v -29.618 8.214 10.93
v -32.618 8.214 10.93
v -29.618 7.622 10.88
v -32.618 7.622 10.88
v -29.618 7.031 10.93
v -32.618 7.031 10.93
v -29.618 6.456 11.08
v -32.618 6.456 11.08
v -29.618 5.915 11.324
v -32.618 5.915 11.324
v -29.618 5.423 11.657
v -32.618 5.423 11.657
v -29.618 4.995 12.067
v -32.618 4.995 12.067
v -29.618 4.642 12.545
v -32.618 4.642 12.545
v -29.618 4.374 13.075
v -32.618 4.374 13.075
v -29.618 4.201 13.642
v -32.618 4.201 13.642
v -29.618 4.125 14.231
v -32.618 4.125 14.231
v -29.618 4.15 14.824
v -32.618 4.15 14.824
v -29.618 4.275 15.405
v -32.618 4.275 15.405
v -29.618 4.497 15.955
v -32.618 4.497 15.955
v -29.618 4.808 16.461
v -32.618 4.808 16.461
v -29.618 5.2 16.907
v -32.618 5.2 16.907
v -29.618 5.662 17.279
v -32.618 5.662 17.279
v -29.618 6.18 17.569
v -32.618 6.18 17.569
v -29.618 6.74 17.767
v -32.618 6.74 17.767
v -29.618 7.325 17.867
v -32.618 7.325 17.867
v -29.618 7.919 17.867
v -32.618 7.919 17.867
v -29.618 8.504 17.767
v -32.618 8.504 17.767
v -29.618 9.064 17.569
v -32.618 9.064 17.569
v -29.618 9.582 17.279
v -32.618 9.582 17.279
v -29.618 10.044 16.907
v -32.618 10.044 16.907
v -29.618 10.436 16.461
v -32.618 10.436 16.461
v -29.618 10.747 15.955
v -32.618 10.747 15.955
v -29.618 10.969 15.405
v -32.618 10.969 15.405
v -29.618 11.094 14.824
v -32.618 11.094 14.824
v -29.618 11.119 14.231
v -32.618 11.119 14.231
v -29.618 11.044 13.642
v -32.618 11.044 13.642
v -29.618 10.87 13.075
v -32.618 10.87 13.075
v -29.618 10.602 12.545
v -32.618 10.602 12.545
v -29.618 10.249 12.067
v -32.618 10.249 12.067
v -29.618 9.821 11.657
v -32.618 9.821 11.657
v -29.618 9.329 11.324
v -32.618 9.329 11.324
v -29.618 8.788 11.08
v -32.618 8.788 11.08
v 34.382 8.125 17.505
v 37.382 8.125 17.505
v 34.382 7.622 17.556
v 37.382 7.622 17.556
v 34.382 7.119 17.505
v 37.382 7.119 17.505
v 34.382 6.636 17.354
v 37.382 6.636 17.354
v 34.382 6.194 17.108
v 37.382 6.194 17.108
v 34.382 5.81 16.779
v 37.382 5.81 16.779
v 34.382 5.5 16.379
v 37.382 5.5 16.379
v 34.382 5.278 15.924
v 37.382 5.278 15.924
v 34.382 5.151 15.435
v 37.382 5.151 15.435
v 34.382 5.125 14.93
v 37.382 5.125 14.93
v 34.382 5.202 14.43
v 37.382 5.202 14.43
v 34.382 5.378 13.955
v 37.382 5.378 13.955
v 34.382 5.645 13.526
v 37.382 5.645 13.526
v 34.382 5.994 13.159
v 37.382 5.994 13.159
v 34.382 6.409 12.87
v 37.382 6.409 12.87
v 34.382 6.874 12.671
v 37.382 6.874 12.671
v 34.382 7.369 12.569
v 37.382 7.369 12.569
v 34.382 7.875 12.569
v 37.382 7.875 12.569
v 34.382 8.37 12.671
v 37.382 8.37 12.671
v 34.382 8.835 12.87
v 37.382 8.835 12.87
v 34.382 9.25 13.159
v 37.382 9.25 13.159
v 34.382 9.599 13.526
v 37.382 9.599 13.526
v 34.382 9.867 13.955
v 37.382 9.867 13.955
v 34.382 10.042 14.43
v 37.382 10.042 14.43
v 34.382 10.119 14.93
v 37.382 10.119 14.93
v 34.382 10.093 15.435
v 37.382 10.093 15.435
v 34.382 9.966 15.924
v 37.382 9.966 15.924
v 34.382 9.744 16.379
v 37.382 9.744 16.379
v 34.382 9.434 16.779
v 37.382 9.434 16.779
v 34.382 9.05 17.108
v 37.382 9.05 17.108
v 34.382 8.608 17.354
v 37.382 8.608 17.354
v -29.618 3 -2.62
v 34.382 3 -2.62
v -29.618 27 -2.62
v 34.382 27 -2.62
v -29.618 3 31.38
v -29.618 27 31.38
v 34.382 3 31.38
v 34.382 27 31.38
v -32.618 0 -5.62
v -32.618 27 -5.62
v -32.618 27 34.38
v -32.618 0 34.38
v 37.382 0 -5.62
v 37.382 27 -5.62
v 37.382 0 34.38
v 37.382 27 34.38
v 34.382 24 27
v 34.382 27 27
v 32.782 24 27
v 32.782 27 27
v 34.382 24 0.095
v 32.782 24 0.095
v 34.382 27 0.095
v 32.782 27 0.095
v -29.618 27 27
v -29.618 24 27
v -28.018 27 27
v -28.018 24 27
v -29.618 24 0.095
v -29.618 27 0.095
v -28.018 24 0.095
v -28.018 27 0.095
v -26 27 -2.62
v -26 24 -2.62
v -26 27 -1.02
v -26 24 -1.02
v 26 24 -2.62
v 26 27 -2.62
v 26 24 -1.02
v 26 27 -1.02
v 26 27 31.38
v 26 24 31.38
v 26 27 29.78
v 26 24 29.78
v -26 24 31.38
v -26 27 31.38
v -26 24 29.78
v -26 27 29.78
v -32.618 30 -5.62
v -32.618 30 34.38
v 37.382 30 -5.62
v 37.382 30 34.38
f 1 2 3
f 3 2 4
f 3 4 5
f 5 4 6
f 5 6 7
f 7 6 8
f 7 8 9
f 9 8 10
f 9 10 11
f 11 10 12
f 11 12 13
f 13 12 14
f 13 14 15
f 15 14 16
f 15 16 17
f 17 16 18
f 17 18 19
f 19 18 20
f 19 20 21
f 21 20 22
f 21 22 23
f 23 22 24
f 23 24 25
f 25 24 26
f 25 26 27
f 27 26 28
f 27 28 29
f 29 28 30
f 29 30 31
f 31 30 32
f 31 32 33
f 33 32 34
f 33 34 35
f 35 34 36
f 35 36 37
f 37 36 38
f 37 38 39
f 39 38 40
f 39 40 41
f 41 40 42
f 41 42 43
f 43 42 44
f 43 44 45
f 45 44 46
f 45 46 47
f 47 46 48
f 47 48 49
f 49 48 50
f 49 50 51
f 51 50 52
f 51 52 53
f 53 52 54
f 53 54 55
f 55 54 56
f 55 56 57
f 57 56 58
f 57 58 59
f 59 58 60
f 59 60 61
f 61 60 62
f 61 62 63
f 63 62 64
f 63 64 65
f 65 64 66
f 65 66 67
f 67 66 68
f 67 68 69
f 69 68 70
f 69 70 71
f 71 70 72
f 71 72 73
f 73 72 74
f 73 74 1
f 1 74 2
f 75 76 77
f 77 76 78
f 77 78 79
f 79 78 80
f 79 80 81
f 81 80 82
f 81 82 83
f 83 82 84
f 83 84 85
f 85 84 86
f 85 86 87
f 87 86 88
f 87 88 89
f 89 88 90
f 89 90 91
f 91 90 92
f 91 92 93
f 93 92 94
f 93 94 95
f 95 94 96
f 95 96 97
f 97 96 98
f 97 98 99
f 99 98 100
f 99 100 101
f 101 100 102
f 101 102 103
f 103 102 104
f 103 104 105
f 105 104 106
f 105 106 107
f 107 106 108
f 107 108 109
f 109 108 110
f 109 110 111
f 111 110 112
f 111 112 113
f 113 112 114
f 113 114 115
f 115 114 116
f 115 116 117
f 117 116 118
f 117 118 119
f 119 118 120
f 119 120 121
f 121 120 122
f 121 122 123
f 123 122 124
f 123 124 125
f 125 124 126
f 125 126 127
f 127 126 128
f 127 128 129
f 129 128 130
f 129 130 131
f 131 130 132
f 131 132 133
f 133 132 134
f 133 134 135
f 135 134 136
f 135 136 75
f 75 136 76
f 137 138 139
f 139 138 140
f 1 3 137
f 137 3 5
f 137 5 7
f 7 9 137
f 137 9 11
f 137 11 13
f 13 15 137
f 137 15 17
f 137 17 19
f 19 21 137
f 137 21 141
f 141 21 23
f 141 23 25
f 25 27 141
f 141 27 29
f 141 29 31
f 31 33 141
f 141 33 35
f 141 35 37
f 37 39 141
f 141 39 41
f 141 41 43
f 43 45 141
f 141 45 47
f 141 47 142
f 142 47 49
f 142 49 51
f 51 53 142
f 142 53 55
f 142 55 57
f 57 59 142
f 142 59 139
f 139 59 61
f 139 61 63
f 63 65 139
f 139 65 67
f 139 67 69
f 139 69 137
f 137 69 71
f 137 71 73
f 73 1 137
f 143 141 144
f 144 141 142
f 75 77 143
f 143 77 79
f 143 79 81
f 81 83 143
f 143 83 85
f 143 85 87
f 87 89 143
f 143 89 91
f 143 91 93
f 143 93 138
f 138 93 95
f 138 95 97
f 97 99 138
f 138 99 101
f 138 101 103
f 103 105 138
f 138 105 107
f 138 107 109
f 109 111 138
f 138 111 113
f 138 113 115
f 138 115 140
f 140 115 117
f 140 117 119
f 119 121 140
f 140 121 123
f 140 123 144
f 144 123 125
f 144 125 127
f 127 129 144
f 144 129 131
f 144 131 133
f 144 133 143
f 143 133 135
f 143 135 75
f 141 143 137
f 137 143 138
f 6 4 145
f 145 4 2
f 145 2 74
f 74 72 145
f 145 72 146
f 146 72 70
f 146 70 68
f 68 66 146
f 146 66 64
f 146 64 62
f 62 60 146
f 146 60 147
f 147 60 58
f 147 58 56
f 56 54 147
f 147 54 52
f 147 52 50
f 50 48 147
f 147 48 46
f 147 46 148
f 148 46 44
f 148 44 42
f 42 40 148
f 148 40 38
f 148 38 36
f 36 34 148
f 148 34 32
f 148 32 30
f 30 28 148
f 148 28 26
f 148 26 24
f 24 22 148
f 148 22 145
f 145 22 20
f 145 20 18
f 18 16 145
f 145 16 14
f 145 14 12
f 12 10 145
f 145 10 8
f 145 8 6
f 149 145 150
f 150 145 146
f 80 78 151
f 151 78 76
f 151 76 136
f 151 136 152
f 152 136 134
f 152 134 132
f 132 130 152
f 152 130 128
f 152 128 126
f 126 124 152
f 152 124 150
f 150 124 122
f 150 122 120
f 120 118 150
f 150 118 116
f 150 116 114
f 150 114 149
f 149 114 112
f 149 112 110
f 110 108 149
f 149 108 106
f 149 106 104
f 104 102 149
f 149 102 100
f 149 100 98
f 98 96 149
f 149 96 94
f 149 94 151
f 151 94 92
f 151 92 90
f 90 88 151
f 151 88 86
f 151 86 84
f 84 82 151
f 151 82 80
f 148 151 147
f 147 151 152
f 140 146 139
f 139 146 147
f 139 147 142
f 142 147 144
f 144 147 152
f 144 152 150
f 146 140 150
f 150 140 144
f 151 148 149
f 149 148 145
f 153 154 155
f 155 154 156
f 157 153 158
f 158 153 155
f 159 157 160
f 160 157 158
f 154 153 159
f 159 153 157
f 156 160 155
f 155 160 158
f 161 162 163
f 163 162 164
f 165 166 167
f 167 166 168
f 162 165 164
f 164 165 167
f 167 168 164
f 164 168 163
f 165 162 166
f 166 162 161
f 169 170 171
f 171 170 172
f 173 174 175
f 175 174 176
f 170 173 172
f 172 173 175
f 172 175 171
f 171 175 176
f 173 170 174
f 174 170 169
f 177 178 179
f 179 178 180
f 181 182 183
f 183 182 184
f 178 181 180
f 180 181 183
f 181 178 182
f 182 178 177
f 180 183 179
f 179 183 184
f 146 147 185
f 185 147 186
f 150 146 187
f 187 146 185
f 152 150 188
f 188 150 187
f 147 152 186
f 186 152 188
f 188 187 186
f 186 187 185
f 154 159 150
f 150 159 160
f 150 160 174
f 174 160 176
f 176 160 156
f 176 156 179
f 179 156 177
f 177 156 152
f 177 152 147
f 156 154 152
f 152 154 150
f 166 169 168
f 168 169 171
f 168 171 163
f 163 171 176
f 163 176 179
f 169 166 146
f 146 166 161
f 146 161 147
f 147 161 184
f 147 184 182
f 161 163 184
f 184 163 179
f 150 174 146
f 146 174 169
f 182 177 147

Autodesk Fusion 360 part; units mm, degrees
sketch "Sketch1" plane through (0, 0, 0) normal (0, 1, 0) x (1, 0, 0) in component "Base"
  line L0 (-32.6179, 5.6203) -> (37.3821, 5.6203)
  line L1 (37.3821, 5.6203) -> (37.3821, -34.3797)
  line L2 (37.3821, -34.3797) -> (-32.6179, -34.3797)
  line L3 (-32.6179, -34.3797) -> (-32.6179, 5.6203)
  dimension "d1" = 70
  dimension "d2" = 40
extrude "Extrude1" add sketch "Sketch1" along normal blind 27 makes body 1 in component "Base"
sketch "Sketch2" plane through (0, 27, 0) normal (0, 1, 0) x (-1, 0, 0) in component "Base"
  line L0 (32.6179, 34.3797) -> (-37.3821, 34.3797)
  line L1 (-37.3821, 34.3797) -> (-37.3821, -5.6203)
  line L2 (-37.3821, -5.6203) -> (32.6179, -5.6203)
  line L3 (32.6179, -5.6203) -> (32.6179, 34.3797)
  line L4 (29.6179, 31.3797) -> (-34.3821, 31.3797)
  line L5 (-34.3821, 31.3797) -> (-34.3821, -2.6203)
  line L6 (-34.3821, -2.6203) -> (29.6179, -2.6203)
  line L7 (29.6179, -2.6203) -> (29.6179, 31.3797)
  dimension "d5" = 3
extrude "Extrude2" cut sketch "Sketch2" against normal up to surface (24 mm away) contours L4 L5 L6 L7 bodies 1 in component "Base"
sketch "Sketch3" plane through (37.3821, 0, 0) normal (1, 0, 0) x (0, 0, -1) in component "Base"
  line L0 (-34.3797, 0) -> (5.6203, 0)
  line L1 (5.6203, 0) -> (5.6203, 27)
  line L2 (5.6203, 27) -> (-34.3797, 27)
  line L3 (-34.3797, 27) -> (-34.3797, 0)
  circle A0 centre (-15.0561, 7.6221) radius 2.5
  dimension "d8" = 5
extrude "Extrude3" cut sketch "Sketch3" against normal blind 5 contours A0 bodies 1 in component "Base"
sketch "Sketch4" plane through (-32.6179, 0, 0) normal (-1, 0, 0) x (0, 0, 1) in component "Base"
  line L0 (-5.6203, 0) -> (34.3797, 0)
  line L1 (34.3797, 0) -> (34.3797, 27)
  line L2 (34.3797, 27) -> (-5.6203, 27)
  line L3 (-5.6203, 27) -> (-5.6203, 0)
  circle A0 centre (14.3797, 7.6221) radius 3.5
  dimension "d11" = 7
extrude "Extrude4" cut sketch "Sketch4" against normal blind 10 contours A0 bodies 1 in component "Base"
sketch "Sketch1 (2)" plane through (0, 27, 0) normal (0, 1, 0) x (-1, 0, 0) in component "Lid"
  line L0 (29.6179, -2.6203) -> (-34.3821, -2.6203)
  line L1 (-34.3821, -2.6203) -> (-34.3821, 31.3797)
  line L2 (-34.3821, 31.3797) -> (29.6179, 31.3797)
  line L3 (29.6179, 31.3797) -> (29.6179, -2.6203)
  line L4 (32.6179, 34.3797) -> (-37.3821, 34.3797)
  line L5 (-37.3821, 34.3797) -> (-37.3821, -5.6203)
  line L6 (-37.3821, -5.6203) -> (32.6179, -5.6203)
  line L7 (32.6179, -5.6203) -> (32.6179, 34.3797)
  line L8 (-37.3821, 34.3797) -> (-37.3821, -5.6203)
  line L9 (-37.3821, -5.6203) -> (32.6179, -5.6203)
  line L10 (32.6179, -5.6203) -> (32.6179, 34.3797)
  line L11 (32.6179, 34.3797) -> (-37.3821, 34.3797)
extrude "Extrude1'" add sketch "Sketch1 (2)" along normal blind 3 separate body contours L0 L1 L2 L3 | L4 L5 L6 L7 L8 L9 L10 L11 makes body 2 in component "Lid"
ref_plane "WorkPlane1" through (0, 0, 31.38) normal (0, 0, 1) x (1, 0, 0) in component "Lid"
sketch "Sketch2 (2)" plane through (0, 0, 31.38) normal (0, 0, 1) x (1, 0, 0) in component "Lid"
  line L0 (0, 0) -> (0, 38) construction
ref_plane "WorkPlane2" through (0, 0, 31.38) normal (0, 0, 1) x (1, 0, 0) in component "Lid"
sketch "Sketch3 (2)" plane through (0, 0, 31.38) normal (0, 0, 1) x (1, 0, 0) in component "Lid"
  line L0 (-32.6179, 27) -> (37.3821, 27)
  line L1 (26, 27) -> (26, 24)
  line L2 (26, 24) -> (-26, 24)
  line L3 (-26, 24) -> (-26, 27)
  line L4 (0, 0) -> (0, 38)
  dimension "d20" = 3
extrude "Extrude2'" add sketch "Sketch3 (2)" against normal blind 1.6 bodies 2 in component "Lid"
ref_plane "WorkPlane3" through (0, 0, -2.62) normal (0, 0, 1) x (1, 0, 0) in component "Lid"
sketch "Sketch4 (2)" plane through (0, 0, -2.62) normal (0, 0, 1) x (1, 0, 0) in component "Lid"
  line L0 (-32.6179, 27) -> (37.3821, 27)
  line L1 (26, 27) -> (26, 24)
  line L2 (26, 24) -> (-26, 24)
  line L3 (-26, 24) -> (-26, 27)
extrude "Extrude3'" add sketch "Sketch4 (2)" along normal blind 1.6 bodies 2 in component "Lid"
ref_plane "WorkPlane4" through (-29.618, 0, 0) normal (1, 0, 0) x (0, 1, 0) in component "Lid"
sketch "Sketch5" plane through (-29.618, 0, 0) normal (1, 0, 0) x (0, 0, -1) in component "Lid"
  line L0 (-34.3797, 27) -> (5.6203, 27)
  line L1 (-0.0952, 27) -> (-0.0952, 24)
  line L2 (-0.0952, 24) -> (-27, 24)
  line L3 (-27, 24) -> (-27, 27)
extrude "Extrude4'" add sketch "Sketch5" along normal blind 1.6 bodies 2 in component "Lid"
ref_plane "WorkPlane5" through (34.382, 0, 0) normal (1, 0, 0) x (0, 1, 0) in component "Lid"
sketch "Sketch6" plane through (34.382, 0, 0) normal (1, 0, 0) x (0, 0, -1) in component "Lid"
  line L0 (5.6203, 27) -> (-34.3797, 27)
  line L1 (-0.0952, 27) -> (-0.0952, 24)
  line L2 (-0.0952, 24) -> (-27, 24)
  line L3 (-27, 24) -> (-27, 27)
extrude "Extrude5" add sketch "Sketch6" against normal blind 1.6 bodies 2 in component "Lid"
component "Base" placed x (1, 0, 0) y (0, 1, 0) z (0, 0, 1) at (0, 0, 0)
component "Lid" placed x (1, 0, 0) y (0, 1, 0) z (0, 0, 1) at (0, 0, 0)
